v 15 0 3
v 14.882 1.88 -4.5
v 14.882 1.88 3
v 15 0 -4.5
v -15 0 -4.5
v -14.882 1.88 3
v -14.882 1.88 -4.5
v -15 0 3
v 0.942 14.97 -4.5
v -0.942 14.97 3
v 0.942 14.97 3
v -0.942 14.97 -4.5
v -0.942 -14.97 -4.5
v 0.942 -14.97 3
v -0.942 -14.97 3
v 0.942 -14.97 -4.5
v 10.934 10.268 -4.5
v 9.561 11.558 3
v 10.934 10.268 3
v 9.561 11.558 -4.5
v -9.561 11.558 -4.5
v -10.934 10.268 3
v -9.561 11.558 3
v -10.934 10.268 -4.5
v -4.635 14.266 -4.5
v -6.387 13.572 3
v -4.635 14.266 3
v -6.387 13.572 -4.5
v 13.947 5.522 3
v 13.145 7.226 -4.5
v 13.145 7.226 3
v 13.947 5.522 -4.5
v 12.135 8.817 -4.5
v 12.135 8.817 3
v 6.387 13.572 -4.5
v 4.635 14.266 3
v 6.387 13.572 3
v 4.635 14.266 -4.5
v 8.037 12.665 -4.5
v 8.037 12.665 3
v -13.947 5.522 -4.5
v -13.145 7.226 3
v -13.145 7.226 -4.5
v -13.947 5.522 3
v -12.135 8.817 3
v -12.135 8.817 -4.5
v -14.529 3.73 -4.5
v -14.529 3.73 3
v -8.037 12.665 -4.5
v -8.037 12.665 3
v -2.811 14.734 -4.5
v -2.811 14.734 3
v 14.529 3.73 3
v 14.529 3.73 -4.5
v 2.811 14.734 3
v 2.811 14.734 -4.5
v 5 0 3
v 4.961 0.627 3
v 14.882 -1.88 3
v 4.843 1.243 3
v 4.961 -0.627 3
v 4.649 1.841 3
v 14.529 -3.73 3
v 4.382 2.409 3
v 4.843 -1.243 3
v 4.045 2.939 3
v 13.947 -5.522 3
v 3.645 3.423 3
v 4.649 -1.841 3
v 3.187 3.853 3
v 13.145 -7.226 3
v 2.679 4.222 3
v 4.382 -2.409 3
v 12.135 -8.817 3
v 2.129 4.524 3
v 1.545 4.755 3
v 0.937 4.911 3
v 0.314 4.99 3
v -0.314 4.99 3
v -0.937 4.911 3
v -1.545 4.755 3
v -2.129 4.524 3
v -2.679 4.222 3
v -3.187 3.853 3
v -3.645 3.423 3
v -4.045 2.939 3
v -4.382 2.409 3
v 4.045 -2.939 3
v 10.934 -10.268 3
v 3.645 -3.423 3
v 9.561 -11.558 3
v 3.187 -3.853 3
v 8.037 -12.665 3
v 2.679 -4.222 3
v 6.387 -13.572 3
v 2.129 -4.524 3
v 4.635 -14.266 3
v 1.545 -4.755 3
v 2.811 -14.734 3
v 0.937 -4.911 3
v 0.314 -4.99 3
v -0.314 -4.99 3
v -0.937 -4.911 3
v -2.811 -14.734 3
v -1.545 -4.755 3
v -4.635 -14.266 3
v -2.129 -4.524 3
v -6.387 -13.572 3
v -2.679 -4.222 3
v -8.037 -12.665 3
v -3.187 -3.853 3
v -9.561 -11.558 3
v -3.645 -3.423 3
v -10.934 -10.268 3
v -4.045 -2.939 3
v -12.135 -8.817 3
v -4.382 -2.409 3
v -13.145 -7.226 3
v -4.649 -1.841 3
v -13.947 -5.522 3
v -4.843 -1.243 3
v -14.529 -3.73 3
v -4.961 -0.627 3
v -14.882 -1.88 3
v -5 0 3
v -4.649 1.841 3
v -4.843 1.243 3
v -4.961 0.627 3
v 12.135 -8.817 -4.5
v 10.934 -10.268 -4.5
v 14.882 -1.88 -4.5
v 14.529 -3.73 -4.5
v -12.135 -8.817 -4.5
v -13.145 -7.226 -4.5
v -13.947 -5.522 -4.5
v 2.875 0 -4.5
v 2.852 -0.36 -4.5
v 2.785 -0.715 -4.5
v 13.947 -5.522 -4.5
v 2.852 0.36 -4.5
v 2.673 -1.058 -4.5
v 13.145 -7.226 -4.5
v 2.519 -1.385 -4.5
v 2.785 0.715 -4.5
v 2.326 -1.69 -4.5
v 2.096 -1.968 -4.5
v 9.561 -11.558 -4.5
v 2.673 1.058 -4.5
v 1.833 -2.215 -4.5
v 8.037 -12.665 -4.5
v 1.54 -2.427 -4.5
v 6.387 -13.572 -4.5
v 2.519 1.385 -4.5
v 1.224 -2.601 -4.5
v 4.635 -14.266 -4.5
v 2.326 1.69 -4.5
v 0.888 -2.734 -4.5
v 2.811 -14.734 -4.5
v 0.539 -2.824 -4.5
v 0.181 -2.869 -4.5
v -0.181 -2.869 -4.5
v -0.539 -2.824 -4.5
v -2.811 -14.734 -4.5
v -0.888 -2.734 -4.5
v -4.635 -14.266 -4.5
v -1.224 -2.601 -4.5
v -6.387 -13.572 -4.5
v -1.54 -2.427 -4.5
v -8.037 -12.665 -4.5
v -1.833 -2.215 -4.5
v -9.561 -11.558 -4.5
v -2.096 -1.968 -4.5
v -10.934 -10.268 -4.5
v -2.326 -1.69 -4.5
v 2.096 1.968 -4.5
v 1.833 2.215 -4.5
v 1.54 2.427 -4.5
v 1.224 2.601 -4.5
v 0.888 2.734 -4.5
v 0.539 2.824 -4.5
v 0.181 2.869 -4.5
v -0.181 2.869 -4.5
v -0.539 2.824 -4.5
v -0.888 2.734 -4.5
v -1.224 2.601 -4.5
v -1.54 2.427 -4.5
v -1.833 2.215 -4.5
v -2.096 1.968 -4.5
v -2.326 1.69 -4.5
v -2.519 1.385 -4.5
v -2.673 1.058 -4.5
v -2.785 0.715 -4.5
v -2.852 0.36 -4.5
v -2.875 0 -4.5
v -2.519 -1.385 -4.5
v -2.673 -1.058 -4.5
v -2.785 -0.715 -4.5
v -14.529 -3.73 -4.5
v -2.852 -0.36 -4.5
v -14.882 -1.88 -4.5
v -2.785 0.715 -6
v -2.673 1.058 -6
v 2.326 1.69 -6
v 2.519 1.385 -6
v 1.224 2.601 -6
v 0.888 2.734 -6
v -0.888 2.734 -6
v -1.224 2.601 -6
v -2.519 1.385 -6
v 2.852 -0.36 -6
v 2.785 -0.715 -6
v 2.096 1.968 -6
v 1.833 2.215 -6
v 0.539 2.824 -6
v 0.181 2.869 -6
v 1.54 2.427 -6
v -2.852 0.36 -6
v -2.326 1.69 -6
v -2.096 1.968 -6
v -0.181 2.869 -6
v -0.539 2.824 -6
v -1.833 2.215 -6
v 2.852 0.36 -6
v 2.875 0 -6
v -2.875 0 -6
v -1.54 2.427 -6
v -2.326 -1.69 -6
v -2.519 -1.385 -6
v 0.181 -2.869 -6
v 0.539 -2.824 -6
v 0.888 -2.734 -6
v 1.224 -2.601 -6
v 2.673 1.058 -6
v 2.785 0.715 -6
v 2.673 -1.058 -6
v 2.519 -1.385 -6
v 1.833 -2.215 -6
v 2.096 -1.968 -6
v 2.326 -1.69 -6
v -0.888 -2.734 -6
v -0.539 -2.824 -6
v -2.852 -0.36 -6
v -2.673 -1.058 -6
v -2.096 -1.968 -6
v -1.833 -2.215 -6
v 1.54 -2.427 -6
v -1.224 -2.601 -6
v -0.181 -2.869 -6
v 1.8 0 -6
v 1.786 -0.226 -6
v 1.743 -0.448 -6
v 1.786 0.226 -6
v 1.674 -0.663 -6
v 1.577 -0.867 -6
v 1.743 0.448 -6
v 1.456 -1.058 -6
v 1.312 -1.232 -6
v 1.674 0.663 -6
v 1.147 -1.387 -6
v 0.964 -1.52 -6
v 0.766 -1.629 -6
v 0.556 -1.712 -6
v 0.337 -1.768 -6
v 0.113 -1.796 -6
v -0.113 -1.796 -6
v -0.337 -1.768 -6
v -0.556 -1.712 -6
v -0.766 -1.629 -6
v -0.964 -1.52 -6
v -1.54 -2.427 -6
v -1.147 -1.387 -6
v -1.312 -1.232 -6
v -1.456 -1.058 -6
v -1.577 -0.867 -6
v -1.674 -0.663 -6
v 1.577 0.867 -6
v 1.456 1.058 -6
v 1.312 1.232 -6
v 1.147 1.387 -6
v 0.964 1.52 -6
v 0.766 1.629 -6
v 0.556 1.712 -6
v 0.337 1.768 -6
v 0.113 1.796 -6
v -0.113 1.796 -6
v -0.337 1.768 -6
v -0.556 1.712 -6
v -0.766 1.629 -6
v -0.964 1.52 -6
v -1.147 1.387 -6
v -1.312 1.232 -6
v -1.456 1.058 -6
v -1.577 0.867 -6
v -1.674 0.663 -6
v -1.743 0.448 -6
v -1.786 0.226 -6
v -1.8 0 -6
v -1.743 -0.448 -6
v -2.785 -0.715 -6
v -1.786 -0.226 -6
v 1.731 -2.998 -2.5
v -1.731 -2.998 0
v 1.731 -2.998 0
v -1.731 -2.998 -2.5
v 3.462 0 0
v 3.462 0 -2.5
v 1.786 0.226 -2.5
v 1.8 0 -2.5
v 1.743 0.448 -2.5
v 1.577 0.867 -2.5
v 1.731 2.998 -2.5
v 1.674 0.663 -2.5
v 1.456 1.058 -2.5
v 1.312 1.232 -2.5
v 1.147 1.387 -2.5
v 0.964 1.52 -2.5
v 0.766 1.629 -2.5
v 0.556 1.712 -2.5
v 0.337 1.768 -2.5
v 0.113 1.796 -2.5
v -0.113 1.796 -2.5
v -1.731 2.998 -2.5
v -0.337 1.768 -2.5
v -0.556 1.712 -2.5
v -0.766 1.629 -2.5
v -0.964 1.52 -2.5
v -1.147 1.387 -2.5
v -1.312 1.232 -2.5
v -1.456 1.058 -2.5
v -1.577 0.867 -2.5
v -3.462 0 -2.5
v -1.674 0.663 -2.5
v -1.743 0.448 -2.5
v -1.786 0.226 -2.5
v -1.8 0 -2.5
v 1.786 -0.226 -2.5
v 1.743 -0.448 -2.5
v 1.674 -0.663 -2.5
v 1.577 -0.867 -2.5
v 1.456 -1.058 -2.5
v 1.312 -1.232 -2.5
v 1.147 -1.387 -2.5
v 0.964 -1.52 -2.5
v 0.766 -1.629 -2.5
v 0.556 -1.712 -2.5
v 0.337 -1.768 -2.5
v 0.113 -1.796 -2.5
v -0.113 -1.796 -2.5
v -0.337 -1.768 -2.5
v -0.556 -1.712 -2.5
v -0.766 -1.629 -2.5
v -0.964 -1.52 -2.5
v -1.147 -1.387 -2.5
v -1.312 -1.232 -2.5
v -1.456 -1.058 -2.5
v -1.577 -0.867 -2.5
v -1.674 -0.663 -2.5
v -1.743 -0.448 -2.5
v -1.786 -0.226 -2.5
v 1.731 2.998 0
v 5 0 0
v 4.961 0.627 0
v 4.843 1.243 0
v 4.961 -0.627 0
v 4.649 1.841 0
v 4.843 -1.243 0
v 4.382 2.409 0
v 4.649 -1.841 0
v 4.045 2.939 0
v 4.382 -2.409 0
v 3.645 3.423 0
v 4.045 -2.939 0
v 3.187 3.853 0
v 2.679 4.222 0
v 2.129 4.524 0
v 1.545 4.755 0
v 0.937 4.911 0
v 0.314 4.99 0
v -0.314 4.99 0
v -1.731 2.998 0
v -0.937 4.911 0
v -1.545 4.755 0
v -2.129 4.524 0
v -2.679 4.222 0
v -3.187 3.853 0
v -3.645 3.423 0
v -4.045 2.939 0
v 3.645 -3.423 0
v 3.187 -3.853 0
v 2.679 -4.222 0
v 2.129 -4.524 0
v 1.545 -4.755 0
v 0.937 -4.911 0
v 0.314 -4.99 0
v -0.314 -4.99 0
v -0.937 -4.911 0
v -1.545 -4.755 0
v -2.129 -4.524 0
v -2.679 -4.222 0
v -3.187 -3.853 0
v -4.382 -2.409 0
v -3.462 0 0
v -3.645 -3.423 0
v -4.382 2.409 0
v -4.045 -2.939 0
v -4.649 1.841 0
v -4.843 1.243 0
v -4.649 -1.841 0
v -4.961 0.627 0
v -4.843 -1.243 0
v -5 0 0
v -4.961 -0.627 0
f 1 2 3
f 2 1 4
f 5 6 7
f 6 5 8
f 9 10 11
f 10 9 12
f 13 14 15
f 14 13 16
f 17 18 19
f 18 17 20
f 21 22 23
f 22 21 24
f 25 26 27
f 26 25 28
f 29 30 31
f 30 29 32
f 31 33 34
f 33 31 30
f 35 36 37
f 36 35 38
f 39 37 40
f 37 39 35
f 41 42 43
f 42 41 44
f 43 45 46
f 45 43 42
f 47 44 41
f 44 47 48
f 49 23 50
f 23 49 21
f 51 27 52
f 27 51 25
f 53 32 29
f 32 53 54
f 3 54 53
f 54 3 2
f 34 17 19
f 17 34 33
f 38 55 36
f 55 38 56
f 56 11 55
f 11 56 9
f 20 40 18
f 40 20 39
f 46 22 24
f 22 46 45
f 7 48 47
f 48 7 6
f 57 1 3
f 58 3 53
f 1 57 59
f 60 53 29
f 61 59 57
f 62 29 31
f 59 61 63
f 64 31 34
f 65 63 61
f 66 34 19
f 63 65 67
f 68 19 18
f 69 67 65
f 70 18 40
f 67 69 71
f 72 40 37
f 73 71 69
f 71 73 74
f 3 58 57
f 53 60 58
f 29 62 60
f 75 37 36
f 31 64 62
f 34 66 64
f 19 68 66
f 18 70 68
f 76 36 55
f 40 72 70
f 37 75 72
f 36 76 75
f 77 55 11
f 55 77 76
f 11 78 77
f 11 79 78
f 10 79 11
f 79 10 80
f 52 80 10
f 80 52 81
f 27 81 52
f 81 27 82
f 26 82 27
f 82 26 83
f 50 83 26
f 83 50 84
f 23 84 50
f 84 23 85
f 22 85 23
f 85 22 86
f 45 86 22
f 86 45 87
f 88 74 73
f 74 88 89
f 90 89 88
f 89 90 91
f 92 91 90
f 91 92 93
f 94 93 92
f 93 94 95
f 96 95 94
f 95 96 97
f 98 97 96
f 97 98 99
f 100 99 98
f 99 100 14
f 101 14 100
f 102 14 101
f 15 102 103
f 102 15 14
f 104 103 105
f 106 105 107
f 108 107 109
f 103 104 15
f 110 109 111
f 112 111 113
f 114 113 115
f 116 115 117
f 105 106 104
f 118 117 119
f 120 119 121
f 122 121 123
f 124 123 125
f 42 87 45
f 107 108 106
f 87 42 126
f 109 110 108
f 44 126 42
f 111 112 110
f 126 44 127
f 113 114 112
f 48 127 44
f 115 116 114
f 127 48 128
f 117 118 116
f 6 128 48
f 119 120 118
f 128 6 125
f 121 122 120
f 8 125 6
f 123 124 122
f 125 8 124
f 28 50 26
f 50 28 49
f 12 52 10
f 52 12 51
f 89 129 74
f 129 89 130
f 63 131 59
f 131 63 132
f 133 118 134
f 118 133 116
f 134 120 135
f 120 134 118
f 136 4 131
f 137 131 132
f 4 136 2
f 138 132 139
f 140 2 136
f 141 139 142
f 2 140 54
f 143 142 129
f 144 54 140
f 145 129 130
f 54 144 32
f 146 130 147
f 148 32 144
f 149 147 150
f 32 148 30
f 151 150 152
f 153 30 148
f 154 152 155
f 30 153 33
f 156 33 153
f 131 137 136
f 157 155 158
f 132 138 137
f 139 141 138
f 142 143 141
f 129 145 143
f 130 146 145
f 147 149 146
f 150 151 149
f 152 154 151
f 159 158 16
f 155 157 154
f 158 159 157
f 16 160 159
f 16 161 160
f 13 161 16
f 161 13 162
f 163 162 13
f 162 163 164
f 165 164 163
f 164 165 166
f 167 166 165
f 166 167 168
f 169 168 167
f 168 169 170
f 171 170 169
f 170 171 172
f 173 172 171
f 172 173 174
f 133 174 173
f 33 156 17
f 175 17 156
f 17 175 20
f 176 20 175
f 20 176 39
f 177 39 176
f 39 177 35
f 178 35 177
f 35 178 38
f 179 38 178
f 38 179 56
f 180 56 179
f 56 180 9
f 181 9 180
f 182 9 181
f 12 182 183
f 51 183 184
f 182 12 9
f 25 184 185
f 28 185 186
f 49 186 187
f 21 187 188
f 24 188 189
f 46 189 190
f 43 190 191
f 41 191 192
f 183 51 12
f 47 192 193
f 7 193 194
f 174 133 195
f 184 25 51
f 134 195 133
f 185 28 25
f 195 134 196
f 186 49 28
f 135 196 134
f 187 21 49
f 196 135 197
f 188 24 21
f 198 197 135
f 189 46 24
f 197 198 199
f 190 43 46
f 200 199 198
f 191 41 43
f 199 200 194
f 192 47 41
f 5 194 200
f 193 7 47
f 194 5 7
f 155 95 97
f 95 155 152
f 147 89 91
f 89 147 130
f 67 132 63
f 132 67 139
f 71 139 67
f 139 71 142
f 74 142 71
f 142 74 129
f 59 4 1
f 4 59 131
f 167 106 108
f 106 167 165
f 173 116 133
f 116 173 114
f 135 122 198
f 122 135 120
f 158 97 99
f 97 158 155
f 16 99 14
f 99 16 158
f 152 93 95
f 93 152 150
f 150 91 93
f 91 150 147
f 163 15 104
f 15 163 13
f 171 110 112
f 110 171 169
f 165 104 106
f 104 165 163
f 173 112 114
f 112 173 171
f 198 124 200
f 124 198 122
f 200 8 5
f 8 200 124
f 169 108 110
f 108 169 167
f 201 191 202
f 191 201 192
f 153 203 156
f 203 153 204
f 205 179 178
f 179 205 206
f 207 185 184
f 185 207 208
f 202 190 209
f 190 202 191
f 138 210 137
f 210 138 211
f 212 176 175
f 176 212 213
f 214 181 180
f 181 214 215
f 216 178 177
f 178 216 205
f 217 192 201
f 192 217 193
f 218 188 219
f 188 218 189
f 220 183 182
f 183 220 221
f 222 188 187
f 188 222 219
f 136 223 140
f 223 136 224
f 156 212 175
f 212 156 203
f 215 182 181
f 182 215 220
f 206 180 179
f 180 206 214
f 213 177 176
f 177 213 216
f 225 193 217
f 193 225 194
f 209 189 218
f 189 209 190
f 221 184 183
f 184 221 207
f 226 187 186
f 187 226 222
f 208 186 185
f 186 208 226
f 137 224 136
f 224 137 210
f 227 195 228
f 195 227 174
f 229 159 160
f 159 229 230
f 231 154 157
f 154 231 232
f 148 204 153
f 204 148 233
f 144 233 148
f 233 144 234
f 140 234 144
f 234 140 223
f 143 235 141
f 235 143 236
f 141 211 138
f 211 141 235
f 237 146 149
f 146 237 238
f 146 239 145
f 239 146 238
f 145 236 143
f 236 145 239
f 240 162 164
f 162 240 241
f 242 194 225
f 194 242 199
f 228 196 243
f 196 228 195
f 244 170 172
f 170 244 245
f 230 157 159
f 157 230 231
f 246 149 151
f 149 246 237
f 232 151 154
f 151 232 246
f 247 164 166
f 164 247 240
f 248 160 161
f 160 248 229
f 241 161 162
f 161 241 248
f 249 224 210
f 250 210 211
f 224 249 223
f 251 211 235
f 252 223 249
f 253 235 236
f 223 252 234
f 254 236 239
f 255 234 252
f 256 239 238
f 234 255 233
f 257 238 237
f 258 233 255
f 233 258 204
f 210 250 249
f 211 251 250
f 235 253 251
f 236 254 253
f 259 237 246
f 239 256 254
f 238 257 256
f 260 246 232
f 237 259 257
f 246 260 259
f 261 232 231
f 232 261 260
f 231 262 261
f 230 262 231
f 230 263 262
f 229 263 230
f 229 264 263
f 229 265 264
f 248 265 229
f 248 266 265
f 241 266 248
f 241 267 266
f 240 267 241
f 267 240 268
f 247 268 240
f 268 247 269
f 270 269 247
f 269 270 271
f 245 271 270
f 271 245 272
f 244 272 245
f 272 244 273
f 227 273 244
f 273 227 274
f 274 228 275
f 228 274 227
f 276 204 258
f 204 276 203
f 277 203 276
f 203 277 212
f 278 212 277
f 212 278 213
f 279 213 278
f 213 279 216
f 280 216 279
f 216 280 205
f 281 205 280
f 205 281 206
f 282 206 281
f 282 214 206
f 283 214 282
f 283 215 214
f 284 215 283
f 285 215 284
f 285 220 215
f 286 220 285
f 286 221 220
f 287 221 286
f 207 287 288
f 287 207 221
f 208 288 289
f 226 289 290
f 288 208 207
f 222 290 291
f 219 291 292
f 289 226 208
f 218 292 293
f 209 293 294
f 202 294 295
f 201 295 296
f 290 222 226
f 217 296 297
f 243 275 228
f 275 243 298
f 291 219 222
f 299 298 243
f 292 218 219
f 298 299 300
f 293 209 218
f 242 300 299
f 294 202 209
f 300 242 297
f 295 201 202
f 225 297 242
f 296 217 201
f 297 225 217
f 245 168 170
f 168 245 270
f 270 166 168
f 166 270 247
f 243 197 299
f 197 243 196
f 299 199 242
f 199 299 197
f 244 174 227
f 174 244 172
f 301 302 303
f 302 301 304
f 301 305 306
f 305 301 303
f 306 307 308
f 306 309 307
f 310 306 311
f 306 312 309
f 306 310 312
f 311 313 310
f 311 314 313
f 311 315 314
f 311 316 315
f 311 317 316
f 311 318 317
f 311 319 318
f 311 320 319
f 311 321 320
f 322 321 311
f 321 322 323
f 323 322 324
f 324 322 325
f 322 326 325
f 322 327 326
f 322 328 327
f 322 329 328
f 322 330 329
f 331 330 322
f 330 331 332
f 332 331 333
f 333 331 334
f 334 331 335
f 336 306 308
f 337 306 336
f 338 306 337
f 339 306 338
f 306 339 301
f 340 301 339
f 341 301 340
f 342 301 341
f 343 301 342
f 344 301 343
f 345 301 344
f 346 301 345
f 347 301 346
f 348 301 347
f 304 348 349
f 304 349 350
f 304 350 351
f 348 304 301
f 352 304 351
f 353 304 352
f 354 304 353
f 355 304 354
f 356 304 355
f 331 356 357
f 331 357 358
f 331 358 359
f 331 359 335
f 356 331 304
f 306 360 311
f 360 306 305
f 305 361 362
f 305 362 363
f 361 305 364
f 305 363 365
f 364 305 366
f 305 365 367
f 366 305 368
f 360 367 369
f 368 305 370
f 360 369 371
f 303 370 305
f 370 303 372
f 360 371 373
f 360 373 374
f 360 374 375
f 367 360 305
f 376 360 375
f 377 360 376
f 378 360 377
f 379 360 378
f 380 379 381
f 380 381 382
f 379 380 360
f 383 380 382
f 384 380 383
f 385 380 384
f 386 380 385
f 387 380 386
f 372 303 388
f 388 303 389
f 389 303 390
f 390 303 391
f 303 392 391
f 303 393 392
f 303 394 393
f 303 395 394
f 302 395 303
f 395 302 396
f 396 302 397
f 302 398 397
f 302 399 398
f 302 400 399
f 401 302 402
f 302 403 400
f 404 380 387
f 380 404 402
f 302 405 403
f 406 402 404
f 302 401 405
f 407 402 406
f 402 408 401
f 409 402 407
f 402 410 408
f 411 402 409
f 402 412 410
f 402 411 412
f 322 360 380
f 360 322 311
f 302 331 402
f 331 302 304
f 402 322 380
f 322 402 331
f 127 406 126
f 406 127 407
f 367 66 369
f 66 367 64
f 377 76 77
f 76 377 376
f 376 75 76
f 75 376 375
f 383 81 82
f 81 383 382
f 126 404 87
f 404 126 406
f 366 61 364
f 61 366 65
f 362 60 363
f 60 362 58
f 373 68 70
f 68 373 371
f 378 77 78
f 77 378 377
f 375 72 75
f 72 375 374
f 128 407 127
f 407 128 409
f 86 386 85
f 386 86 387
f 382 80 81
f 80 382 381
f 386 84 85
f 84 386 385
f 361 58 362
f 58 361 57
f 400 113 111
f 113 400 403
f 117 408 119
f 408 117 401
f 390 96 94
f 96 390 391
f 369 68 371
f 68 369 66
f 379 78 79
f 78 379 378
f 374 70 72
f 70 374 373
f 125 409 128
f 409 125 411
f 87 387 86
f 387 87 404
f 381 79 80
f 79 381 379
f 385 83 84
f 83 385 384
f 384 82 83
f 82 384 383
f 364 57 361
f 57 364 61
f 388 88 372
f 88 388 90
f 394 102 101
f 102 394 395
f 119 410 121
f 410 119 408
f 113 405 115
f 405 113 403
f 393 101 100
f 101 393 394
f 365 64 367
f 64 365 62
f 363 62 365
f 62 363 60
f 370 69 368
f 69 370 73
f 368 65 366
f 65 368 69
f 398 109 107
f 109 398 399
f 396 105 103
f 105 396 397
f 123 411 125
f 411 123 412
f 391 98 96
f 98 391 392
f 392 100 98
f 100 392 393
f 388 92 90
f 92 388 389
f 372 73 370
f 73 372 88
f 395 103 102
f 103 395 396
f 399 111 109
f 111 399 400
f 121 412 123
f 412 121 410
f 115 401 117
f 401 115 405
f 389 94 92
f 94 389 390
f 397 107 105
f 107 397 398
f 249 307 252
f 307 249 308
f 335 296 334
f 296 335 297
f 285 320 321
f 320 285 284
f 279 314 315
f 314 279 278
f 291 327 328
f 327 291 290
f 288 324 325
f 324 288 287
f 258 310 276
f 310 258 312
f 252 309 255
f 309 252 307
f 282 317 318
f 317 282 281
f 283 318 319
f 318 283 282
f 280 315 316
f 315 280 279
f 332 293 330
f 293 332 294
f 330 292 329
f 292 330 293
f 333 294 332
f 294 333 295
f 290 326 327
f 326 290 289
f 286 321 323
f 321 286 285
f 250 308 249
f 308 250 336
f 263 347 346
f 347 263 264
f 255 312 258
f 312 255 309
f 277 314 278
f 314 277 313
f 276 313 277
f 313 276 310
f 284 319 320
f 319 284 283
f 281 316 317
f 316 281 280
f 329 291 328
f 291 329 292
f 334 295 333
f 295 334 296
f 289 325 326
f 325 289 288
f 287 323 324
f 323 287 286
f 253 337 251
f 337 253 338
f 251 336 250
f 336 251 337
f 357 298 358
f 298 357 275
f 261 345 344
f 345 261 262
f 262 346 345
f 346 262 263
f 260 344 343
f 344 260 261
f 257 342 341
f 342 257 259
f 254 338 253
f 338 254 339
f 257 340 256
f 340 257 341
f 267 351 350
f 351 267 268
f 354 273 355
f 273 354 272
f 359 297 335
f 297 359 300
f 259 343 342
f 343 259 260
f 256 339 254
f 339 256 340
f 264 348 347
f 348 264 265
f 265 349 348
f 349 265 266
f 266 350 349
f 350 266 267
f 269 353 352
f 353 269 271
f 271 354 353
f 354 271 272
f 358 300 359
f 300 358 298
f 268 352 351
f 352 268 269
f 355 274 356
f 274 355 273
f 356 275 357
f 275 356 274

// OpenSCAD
$fn = 50;


difference() {
	union() {
		translate(v = [0, 0, -4.5000000000]) {
			cylinder(h = 7.5000000000, r = 15.0000000000);
		}
		#translate(v = [0, 0, -6.0000000000]) {
			cylinder(h = 6, r = 2.8750000000);
		}
	}
	union() {
		translate(v = [0, 0, 0]) {
			rotate(a = [0, 0, 0]) {
				difference() {
					union() {
						translate(v = [0, 0, -2.5000000000]) {
							linear_extrude(height = 2.5000000000) {
								polygon(points = [[3.4620000000, 0.0000000000], [1.7310000000, 2.9981799479], [-1.7310000000, 2.9981799479], [-3.4620000000, 0.0000000000], [-1.7310000000, -2.9981799479], [1.7310000000, -2.9981799479]]);
							}
						}
					}
					union();
				}
			}
		}
		#cylinder(h = 3, r = 5.0000000000);
		#translate(v = [0, 0, -100.0000000000]) {
			cylinder(h = 200, r = 1.8000000000);
		}
	}
}
